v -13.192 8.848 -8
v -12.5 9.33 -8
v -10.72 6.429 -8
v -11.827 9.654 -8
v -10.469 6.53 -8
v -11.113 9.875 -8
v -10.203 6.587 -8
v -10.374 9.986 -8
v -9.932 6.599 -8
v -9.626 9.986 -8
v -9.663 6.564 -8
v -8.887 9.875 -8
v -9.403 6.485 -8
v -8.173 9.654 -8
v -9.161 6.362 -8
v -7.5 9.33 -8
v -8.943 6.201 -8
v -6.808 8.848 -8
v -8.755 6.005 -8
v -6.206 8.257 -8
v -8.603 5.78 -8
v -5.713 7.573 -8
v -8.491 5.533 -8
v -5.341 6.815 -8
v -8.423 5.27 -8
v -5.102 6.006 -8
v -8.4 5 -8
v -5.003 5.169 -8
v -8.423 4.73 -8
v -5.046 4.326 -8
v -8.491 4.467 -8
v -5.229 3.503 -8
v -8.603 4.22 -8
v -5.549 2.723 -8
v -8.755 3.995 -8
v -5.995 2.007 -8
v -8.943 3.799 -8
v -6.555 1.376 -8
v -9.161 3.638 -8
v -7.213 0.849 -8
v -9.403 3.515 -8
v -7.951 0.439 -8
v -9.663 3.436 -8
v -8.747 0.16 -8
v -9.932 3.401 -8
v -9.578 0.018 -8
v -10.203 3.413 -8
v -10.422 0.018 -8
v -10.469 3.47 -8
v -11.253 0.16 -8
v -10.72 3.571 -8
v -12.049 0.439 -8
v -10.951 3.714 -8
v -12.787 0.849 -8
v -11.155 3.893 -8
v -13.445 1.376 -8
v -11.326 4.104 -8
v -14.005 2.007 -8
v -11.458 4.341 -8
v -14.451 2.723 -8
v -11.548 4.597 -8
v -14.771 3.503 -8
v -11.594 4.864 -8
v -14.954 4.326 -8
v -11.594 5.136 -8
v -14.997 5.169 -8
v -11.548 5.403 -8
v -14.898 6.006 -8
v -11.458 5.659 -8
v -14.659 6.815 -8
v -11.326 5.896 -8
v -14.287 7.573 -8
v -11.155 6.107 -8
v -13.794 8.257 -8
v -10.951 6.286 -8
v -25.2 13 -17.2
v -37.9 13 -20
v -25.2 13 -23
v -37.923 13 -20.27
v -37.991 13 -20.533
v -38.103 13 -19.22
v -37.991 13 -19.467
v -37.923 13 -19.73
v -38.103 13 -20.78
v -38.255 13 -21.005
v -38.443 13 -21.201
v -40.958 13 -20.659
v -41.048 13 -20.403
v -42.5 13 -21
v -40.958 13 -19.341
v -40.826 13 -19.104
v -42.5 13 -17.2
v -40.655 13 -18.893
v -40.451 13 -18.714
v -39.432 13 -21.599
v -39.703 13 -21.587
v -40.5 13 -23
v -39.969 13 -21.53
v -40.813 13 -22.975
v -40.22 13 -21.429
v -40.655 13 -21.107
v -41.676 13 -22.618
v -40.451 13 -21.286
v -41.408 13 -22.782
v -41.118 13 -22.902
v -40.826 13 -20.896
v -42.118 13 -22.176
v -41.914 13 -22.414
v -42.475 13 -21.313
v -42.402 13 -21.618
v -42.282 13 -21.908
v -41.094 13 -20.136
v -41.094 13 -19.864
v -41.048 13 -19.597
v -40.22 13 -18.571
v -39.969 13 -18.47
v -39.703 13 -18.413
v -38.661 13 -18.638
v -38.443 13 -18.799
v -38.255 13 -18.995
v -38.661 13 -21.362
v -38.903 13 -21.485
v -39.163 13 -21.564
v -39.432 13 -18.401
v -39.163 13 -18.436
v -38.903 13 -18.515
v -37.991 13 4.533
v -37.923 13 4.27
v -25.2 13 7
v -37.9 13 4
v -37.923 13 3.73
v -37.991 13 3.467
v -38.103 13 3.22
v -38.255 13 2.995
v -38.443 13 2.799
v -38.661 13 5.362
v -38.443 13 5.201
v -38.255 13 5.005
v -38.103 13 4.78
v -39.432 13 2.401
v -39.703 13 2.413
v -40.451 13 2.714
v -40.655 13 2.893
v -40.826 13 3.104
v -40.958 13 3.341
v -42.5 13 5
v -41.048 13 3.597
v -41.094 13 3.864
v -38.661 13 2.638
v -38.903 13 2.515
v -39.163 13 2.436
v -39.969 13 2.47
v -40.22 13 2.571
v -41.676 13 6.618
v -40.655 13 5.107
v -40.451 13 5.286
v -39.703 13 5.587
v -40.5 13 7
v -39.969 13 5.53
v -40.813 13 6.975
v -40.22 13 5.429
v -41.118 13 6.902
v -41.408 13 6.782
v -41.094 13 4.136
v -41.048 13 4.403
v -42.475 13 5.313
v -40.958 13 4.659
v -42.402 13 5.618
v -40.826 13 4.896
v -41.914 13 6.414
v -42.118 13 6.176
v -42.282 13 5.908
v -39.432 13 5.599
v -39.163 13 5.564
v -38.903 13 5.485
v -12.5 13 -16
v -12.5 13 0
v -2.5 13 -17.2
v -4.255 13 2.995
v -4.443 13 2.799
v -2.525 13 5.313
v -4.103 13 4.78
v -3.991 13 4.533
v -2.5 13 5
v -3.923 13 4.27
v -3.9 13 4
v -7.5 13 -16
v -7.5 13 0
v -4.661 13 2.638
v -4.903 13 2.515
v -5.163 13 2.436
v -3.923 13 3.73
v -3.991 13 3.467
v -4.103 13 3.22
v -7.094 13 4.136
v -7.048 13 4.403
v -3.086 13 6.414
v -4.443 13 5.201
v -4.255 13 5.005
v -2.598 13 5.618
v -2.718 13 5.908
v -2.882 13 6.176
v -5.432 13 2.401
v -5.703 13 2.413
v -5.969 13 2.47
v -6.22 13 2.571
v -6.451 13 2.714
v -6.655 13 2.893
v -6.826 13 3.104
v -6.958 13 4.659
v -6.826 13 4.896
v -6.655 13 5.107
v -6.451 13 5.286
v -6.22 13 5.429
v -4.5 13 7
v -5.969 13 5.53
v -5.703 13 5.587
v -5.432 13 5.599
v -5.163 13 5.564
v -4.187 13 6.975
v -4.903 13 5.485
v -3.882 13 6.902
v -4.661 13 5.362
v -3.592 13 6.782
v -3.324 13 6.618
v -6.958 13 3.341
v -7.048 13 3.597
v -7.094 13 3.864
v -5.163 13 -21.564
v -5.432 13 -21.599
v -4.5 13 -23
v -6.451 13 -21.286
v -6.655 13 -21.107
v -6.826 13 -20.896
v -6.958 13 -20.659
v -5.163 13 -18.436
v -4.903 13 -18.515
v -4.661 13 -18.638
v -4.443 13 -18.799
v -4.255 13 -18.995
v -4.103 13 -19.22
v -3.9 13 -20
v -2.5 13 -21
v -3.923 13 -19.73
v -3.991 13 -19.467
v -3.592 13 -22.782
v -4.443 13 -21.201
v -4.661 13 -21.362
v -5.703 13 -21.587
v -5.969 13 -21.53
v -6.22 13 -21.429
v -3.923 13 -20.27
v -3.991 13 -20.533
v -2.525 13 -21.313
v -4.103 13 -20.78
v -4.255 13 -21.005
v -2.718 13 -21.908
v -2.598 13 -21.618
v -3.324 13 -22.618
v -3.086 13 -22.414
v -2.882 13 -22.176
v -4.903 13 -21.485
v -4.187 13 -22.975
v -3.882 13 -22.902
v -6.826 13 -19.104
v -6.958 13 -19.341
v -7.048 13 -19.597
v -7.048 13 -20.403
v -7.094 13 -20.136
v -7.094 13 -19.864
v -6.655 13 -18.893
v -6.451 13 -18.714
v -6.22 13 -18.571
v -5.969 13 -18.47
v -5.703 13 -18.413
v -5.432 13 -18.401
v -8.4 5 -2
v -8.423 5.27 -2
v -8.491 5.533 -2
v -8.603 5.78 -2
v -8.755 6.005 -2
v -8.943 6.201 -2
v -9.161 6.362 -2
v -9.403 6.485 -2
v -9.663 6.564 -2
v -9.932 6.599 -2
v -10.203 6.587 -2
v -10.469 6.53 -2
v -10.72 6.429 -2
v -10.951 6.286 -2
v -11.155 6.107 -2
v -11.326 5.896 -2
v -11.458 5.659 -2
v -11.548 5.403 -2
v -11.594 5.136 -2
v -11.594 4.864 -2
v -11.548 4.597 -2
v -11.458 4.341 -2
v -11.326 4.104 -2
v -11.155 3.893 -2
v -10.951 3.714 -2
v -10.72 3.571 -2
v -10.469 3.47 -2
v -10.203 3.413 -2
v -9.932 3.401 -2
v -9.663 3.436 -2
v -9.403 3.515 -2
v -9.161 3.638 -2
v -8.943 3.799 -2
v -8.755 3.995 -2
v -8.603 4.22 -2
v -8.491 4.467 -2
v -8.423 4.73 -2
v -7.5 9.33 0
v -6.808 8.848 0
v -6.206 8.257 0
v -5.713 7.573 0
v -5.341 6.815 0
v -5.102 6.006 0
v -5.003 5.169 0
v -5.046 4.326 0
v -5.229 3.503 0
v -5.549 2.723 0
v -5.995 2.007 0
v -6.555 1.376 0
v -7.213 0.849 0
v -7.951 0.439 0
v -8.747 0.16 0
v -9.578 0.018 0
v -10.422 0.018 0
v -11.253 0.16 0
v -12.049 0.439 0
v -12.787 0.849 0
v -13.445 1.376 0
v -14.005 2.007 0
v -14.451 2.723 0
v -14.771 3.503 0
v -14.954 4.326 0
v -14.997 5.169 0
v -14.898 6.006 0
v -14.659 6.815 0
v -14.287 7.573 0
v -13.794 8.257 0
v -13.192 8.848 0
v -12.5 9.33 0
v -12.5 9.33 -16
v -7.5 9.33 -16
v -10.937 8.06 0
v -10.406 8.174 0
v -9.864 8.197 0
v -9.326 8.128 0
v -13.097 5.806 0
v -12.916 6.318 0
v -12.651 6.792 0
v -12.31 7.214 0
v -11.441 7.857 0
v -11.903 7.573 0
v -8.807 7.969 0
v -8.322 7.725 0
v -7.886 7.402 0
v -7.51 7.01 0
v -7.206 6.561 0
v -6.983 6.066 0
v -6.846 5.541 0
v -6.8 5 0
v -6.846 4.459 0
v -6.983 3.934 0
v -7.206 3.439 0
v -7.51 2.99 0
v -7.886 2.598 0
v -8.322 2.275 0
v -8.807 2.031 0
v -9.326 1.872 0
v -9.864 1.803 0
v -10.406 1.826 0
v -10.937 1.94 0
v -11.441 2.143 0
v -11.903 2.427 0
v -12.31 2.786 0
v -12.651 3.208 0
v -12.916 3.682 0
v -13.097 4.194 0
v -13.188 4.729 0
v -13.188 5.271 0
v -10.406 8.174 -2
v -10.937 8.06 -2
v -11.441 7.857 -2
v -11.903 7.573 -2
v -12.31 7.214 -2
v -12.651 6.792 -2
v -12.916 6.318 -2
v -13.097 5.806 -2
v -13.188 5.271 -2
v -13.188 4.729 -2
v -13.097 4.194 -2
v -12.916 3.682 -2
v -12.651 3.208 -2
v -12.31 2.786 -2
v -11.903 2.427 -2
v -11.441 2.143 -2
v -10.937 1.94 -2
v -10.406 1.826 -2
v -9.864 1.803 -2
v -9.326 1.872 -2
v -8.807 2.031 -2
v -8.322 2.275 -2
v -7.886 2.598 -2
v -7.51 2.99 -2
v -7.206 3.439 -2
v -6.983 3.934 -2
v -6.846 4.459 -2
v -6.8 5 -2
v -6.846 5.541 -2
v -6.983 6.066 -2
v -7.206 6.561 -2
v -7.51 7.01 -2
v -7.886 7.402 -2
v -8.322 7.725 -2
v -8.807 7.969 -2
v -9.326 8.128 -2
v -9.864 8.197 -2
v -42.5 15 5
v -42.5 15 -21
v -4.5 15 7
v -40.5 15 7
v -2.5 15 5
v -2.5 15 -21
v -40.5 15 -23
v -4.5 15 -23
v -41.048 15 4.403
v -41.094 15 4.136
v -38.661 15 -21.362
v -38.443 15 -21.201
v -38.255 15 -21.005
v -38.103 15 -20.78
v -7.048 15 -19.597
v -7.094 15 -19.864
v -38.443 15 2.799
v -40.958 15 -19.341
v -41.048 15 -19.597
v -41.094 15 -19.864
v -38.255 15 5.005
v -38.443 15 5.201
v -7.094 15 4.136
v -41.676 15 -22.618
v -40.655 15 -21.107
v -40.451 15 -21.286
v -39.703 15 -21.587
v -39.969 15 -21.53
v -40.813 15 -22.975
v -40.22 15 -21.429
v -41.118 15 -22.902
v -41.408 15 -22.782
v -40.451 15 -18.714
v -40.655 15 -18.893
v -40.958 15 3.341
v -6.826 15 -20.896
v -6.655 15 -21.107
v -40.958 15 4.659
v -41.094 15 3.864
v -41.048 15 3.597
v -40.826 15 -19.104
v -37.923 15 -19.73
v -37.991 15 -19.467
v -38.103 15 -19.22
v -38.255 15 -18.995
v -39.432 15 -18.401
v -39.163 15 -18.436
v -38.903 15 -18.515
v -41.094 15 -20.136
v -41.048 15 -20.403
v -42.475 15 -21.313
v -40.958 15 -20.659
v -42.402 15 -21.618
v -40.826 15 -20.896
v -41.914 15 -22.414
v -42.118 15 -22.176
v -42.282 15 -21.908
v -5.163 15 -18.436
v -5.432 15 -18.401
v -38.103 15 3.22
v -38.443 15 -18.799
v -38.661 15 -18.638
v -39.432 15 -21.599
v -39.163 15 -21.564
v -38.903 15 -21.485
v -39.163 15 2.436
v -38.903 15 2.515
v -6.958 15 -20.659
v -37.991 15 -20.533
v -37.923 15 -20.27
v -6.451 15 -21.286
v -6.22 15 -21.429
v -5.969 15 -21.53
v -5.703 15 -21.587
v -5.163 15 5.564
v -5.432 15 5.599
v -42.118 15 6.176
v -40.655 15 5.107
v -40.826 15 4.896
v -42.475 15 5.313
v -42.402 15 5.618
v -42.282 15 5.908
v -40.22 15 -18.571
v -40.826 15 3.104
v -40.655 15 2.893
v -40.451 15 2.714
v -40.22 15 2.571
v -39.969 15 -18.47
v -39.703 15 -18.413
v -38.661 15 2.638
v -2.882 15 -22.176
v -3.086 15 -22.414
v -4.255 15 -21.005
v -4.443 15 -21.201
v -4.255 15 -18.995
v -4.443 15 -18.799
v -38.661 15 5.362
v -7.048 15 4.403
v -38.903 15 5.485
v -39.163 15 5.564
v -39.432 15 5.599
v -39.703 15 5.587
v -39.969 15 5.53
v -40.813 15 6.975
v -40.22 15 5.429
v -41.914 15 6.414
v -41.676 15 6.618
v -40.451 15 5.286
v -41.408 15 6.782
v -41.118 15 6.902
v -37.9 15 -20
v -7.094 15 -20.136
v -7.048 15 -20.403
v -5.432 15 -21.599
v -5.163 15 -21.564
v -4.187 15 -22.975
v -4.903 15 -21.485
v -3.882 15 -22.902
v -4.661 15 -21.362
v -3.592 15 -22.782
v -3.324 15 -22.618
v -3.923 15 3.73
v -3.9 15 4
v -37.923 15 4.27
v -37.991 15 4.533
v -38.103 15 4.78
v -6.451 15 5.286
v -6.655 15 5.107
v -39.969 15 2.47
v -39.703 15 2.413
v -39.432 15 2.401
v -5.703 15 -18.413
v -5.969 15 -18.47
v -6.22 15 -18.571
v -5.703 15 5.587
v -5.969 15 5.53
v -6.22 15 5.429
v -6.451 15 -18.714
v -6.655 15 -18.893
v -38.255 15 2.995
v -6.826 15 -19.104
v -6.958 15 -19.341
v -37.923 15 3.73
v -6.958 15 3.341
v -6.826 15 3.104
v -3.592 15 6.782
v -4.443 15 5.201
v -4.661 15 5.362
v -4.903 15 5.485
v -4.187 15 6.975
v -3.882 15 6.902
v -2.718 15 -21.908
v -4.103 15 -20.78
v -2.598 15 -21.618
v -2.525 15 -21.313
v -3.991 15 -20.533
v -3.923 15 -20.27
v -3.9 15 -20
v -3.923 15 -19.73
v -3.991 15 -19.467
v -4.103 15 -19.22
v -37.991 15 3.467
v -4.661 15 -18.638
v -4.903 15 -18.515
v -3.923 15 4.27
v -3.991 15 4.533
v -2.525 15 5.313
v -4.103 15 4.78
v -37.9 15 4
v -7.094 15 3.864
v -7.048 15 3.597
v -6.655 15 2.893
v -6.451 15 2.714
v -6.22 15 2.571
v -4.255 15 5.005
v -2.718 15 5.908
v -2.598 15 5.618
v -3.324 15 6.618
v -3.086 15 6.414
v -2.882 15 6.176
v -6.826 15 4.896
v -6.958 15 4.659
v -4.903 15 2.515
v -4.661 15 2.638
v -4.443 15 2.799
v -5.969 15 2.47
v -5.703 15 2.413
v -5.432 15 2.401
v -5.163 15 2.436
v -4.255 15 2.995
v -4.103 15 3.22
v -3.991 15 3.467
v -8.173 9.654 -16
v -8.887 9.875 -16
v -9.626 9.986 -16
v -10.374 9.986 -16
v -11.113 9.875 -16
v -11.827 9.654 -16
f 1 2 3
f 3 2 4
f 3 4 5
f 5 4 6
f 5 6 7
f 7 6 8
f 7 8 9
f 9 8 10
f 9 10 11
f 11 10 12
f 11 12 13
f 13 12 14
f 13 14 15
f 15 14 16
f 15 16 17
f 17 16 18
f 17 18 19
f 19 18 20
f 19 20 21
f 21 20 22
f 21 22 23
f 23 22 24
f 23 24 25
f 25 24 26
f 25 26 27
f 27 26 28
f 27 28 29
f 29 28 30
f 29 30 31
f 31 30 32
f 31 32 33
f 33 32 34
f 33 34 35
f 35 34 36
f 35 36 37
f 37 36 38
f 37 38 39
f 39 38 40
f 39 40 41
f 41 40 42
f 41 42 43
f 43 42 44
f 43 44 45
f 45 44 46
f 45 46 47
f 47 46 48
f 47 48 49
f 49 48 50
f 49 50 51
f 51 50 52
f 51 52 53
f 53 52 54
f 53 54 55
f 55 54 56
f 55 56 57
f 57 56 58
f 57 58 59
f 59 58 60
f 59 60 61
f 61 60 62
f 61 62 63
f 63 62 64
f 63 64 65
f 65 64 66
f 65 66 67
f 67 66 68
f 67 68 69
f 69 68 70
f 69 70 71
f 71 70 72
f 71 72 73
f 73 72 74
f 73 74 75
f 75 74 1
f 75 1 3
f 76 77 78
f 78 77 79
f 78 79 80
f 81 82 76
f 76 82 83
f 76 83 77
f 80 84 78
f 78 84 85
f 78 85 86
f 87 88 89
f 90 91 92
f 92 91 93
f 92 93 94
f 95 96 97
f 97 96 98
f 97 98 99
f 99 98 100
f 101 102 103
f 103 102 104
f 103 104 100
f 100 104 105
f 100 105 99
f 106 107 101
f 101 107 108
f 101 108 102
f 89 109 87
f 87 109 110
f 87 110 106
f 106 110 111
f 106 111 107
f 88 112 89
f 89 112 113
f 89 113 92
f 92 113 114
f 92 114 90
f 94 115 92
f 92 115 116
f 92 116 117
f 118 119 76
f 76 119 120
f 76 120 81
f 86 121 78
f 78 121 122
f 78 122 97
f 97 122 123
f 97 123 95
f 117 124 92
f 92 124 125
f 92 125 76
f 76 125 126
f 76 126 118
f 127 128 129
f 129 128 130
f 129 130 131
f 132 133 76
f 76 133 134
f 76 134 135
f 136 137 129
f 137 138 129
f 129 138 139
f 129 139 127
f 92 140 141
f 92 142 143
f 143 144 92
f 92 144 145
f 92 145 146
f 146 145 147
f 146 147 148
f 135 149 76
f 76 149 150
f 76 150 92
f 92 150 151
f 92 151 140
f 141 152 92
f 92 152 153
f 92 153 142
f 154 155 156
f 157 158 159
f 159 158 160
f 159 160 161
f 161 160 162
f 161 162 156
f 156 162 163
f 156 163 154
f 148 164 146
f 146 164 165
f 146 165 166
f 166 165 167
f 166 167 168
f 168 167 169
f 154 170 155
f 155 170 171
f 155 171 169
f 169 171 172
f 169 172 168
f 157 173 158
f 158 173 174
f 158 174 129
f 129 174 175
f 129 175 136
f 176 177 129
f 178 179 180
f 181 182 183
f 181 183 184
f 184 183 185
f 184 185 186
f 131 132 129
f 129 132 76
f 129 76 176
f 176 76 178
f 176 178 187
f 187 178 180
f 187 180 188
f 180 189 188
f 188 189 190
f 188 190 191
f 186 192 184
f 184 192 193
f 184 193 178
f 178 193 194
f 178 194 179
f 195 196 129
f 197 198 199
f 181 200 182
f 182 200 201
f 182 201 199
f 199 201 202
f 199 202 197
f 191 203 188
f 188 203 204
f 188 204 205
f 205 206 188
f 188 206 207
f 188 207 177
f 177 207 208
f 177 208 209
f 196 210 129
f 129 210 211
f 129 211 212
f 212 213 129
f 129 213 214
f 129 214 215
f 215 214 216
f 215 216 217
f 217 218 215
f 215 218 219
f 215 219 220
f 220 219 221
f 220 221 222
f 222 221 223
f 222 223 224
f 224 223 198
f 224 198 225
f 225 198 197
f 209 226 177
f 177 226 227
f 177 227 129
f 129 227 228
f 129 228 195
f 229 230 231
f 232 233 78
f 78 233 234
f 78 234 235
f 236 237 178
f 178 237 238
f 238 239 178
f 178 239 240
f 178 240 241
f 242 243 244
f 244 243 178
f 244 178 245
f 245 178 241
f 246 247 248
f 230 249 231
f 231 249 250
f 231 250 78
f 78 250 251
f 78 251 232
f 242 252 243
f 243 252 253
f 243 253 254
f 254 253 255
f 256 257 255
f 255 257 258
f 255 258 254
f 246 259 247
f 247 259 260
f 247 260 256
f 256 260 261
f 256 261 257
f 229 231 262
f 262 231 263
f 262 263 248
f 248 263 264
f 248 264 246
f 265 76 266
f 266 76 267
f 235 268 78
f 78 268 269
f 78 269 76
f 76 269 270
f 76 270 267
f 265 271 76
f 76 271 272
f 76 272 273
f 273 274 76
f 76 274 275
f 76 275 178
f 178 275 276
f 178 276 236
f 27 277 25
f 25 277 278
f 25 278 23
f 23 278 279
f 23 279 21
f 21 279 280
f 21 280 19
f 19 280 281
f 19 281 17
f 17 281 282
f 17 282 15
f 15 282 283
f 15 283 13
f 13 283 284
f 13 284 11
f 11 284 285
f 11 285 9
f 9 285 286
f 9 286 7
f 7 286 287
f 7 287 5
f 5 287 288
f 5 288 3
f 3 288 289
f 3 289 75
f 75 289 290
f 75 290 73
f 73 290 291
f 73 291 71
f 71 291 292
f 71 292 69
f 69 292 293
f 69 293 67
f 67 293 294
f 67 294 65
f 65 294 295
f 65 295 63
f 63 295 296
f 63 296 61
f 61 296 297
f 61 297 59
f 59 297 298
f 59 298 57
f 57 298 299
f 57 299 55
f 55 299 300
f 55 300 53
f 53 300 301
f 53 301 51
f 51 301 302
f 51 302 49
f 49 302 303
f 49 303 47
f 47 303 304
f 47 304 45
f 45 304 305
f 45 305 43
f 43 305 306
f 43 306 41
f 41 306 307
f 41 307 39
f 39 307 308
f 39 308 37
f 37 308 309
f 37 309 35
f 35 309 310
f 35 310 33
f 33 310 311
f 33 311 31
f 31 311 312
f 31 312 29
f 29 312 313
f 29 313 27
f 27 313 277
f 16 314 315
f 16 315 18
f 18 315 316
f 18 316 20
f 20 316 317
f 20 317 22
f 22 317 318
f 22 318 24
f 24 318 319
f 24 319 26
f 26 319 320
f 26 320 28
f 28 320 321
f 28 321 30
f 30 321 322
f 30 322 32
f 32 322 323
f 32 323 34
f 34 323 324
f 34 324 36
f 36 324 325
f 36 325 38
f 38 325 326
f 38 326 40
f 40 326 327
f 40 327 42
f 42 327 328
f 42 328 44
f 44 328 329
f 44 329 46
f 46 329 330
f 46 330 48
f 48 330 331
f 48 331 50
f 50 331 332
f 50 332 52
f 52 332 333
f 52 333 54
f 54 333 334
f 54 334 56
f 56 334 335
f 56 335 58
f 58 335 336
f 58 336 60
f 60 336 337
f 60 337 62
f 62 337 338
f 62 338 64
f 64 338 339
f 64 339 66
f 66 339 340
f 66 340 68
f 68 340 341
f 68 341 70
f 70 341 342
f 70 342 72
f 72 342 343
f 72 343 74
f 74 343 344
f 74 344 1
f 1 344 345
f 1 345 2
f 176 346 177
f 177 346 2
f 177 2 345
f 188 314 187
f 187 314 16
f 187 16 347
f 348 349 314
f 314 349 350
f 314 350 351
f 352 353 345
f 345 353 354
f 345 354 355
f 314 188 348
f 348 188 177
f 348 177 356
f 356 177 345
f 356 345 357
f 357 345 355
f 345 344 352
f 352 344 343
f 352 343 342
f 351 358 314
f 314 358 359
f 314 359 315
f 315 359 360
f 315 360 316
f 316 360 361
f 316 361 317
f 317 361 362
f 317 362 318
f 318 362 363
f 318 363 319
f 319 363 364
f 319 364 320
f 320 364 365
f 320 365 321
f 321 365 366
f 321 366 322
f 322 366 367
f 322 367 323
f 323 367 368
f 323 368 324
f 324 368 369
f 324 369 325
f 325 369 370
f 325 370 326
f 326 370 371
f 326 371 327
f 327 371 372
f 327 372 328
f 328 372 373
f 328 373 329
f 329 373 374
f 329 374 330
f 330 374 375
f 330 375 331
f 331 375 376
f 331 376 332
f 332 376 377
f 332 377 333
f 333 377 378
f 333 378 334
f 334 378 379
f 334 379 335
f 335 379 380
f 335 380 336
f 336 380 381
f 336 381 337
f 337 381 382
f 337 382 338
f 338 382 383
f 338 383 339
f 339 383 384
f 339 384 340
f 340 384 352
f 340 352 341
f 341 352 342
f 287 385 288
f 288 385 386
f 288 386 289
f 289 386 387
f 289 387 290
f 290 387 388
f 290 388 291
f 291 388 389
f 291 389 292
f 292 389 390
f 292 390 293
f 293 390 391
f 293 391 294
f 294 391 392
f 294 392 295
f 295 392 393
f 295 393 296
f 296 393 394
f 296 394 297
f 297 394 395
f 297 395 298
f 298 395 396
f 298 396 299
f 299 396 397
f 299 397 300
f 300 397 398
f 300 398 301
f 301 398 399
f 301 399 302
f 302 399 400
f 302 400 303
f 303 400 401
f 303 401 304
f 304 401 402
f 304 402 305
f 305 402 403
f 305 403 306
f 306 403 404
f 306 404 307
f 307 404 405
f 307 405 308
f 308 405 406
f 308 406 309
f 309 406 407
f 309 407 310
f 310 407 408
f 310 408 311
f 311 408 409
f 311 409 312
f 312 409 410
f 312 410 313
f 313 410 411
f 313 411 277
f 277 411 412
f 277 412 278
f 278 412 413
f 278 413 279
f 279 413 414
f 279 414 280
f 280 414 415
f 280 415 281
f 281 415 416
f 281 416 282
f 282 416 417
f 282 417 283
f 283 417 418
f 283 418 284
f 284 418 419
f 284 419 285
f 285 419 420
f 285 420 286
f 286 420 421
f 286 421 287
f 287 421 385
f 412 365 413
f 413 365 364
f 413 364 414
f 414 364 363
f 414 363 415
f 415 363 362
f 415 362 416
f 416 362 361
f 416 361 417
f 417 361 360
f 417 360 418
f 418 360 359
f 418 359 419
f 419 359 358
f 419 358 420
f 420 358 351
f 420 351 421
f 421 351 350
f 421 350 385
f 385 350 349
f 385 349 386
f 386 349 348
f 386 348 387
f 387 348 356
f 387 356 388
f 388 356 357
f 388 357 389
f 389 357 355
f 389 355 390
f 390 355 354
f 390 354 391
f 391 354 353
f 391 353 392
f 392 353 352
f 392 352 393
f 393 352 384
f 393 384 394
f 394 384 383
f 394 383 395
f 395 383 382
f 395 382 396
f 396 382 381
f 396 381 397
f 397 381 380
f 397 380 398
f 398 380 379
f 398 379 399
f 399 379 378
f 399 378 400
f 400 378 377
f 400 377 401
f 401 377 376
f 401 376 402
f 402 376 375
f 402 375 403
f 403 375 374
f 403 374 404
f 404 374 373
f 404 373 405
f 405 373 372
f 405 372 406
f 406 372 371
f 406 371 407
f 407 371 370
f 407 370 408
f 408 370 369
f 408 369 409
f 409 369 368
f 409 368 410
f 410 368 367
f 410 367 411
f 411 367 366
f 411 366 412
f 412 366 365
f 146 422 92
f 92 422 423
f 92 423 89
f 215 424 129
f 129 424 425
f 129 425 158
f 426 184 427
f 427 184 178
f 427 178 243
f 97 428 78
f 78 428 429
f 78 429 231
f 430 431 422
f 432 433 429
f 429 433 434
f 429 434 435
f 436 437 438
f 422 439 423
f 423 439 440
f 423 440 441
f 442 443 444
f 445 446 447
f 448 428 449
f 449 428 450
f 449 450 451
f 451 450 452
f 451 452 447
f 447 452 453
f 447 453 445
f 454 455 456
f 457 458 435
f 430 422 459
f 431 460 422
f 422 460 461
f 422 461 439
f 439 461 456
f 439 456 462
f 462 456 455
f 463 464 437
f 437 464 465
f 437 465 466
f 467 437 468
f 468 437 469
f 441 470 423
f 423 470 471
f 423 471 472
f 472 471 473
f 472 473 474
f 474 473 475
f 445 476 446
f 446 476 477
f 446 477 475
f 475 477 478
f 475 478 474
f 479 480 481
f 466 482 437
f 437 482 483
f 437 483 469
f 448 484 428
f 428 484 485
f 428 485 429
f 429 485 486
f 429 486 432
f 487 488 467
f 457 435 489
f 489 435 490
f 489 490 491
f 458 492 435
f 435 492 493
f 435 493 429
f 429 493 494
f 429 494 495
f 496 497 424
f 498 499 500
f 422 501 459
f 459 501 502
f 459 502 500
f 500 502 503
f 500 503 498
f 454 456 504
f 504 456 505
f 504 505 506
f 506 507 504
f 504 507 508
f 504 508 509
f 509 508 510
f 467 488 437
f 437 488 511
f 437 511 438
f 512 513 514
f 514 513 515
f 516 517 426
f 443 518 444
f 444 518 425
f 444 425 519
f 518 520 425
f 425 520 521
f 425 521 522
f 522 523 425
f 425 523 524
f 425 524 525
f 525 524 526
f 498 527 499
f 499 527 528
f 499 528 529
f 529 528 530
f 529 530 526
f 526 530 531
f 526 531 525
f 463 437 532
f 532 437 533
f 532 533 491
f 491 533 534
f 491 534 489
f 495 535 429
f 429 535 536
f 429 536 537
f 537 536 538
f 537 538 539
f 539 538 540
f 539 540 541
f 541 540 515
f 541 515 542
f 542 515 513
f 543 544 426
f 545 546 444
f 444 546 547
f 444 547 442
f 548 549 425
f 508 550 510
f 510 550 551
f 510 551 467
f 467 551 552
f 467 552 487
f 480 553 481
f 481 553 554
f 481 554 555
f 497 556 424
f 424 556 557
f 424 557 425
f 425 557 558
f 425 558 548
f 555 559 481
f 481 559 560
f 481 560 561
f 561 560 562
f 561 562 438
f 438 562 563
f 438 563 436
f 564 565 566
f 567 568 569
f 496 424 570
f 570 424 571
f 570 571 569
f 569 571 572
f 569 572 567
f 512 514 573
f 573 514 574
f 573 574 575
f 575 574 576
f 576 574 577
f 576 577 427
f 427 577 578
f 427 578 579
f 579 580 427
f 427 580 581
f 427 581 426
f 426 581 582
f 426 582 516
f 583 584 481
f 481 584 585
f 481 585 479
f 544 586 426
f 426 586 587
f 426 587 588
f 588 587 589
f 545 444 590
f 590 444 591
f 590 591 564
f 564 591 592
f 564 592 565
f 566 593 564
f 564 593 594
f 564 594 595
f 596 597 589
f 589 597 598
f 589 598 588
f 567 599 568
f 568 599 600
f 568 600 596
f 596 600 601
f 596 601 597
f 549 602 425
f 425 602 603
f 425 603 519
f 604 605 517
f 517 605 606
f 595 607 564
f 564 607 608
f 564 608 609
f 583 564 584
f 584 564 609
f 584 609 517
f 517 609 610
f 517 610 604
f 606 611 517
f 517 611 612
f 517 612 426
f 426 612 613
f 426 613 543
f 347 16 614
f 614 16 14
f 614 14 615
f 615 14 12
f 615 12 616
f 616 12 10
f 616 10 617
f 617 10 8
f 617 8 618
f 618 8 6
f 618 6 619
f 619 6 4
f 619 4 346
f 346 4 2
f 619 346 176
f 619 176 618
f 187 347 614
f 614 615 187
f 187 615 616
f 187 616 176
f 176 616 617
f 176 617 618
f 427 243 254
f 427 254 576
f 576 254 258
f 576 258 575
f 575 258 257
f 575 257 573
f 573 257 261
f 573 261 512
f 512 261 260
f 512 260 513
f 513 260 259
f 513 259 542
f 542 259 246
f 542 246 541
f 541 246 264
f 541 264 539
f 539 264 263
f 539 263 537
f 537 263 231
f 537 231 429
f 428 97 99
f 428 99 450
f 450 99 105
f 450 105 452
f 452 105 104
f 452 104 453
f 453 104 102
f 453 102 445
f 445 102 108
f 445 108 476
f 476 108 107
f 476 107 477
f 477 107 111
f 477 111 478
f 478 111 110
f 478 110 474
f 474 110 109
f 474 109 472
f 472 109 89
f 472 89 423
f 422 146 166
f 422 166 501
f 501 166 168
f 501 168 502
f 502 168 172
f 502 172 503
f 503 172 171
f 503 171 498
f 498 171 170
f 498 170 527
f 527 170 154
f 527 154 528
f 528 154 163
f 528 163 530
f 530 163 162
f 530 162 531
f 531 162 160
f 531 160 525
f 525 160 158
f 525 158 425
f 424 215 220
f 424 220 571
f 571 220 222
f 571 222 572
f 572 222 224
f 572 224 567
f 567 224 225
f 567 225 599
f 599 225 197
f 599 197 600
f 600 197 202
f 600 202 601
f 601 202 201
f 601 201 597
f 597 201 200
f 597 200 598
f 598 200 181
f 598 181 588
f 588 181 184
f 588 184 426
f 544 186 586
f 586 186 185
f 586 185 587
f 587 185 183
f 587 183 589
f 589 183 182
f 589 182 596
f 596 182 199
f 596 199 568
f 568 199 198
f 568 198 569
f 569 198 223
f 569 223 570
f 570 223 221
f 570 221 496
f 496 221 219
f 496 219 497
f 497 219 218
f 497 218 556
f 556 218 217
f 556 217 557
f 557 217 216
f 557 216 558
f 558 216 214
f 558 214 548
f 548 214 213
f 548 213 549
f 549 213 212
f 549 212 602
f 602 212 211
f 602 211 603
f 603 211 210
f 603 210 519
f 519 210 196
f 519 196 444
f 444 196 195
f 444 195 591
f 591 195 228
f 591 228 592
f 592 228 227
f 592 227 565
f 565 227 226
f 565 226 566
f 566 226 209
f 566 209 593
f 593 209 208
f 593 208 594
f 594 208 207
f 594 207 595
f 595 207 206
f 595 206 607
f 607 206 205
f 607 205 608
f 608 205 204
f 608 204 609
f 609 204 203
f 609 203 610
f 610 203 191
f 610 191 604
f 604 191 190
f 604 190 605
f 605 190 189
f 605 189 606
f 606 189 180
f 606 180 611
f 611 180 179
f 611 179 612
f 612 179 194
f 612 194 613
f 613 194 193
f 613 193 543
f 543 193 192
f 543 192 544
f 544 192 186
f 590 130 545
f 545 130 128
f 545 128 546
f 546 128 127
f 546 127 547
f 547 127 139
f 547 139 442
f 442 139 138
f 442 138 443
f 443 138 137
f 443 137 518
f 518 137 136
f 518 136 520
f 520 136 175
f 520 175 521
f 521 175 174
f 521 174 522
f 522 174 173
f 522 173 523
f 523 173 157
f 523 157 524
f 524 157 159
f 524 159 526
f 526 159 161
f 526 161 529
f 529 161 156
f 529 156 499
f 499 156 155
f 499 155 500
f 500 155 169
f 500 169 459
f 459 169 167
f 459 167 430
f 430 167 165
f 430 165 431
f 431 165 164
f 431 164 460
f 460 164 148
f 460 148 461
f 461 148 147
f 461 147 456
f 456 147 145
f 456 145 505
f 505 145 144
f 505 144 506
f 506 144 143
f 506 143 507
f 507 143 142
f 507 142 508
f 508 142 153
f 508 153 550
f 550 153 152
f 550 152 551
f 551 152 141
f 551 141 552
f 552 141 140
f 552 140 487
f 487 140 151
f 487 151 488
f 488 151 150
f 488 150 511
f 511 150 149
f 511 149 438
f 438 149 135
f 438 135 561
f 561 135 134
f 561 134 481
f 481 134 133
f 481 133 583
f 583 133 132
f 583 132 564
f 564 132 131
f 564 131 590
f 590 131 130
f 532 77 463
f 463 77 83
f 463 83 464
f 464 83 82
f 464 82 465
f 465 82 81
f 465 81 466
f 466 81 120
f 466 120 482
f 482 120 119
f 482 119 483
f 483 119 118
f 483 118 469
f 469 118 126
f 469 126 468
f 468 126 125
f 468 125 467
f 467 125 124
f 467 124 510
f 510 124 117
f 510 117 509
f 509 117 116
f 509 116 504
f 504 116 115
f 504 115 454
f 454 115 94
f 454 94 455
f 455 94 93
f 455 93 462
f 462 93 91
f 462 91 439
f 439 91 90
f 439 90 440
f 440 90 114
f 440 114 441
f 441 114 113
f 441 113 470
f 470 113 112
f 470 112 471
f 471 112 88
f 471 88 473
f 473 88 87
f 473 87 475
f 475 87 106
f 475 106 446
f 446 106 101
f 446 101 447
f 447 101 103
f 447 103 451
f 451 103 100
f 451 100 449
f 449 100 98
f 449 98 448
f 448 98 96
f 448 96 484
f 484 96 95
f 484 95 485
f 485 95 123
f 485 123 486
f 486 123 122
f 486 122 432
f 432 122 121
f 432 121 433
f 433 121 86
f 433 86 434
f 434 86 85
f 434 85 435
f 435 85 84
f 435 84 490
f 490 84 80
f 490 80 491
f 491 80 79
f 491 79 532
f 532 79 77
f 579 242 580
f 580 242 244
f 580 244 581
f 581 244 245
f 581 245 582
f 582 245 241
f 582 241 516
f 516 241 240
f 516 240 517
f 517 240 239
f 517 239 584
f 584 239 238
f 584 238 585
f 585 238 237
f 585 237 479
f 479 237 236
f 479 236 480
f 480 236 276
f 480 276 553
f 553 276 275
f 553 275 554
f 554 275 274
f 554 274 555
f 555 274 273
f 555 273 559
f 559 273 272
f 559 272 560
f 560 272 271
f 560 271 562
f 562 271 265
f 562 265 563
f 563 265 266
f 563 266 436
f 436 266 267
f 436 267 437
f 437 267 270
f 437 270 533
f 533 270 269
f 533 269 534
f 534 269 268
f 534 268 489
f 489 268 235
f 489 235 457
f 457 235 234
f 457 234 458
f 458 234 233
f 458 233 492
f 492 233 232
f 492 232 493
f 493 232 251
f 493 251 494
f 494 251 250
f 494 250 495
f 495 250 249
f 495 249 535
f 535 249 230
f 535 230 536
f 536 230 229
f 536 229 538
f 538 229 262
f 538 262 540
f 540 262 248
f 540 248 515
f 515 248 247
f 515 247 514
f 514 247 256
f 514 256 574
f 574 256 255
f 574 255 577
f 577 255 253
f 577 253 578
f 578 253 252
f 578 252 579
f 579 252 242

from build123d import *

# Parameters (mm, degrees)
SKETCH_1_R          = 1.6
EXTRUDE_1_DEPTH     = 8
SKETCH_2_R          = 3.2
CUT_EXTRUDE_1_DEPTH = 2
SKETCH_3_W          = 40
SKETCH_3_H          = 30
EXTRUDE_2_DEPTH     = 2
EXTRUDE_3_DEPTH     = 16
FILLET_1_R          = 2
SKETCH_4_R          = 1.6
CUT_EXTRUDE_3_DEPTH = 51.042481953


with BuildPart() as part:
    # Эскиз1 → Бобышка-Вытянуть1 (new body)
    with BuildSketch(Plane.XY):
        with BuildLine():
            ThreePointArc((-12.5, 9.330127019), (-10, 0), (-7.5, 9.330127019))
            Line((-7.5, 9.330127019), (-7.5, 13))
            Line((-7.5, 13), (-12.5, 13))
            Line((-12.5, 13), (-12.5, 9.330127019))
        make_face()
        with Locations((-10, 5)):
            Circle(SKETCH_1_R, mode=Mode.SUBTRACT)
    extrude(amount=-EXTRUDE_1_DEPTH)

    # Эскиз2 → Вырез-Вытянуть1 (cut)
    with BuildSketch(Plane.XY):
        with Locations((-10, 5)):
            Circle(SKETCH_2_R)
    extrude(amount=-CUT_EXTRUDE_1_DEPTH, mode=Mode.SUBTRACT)

    # Эскиз3 → Бобышка-Вытянуть2 (add)
    with BuildSketch(Plane(origin=(0, 13, 0), x_dir=(1, 0, 0), z_dir=(0, 1, 0))):
        with Locations((-22.5, 8)):
            Rectangle(SKETCH_3_W, SKETCH_3_H)
    extrude(amount=EXTRUDE_2_DEPTH)

    # Эскиз1<3> → Бобышка-Вытянуть3 (add)
    with BuildSketch(Plane.XY):
        with BuildLine():
            ThreePointArc((-12.5, 9.330127019), (-10, 10), (-7.5, 9.330127019))
            Line((-7.5, 9.330127019), (-7.5, 13))
            Line((-7.5, 13), (-12.5, 13))
            Line((-12.5, 13), (-12.5, 9.330127019))
        make_face()
    extrude(amount=-EXTRUDE_3_DEPTH)

    # Скругление1
    fillet_1_edges = [part.edges().sort_by_distance(p)[0] for p in [
        (-2.5, 14, -23),
        (-42.5, 14, -23),
        (-42.5, 14, 7),
        (-2.5, 14, 7),
    ]]
    fillet(fillet_1_edges, radius=FILLET_1_R)

    # Эскиз4 → Вырез-Вытянуть3 (cut, through all)
    with BuildSketch(Plane.XZ.offset(-13)):
        with Locations((-5.5, 4)):
            Circle(SKETCH_4_R)
        with Locations((-5.5, -20)):
            Circle(SKETCH_4_R)
        with Locations((-39.5, -20)):
            Circle(SKETCH_4_R)
        with Locations((-39.5, 4)):
            Circle(SKETCH_4_R)
    extrude(amount=-CUT_EXTRUDE_3_DEPTH, mode=Mode.SUBTRACT)


solid = part.part
